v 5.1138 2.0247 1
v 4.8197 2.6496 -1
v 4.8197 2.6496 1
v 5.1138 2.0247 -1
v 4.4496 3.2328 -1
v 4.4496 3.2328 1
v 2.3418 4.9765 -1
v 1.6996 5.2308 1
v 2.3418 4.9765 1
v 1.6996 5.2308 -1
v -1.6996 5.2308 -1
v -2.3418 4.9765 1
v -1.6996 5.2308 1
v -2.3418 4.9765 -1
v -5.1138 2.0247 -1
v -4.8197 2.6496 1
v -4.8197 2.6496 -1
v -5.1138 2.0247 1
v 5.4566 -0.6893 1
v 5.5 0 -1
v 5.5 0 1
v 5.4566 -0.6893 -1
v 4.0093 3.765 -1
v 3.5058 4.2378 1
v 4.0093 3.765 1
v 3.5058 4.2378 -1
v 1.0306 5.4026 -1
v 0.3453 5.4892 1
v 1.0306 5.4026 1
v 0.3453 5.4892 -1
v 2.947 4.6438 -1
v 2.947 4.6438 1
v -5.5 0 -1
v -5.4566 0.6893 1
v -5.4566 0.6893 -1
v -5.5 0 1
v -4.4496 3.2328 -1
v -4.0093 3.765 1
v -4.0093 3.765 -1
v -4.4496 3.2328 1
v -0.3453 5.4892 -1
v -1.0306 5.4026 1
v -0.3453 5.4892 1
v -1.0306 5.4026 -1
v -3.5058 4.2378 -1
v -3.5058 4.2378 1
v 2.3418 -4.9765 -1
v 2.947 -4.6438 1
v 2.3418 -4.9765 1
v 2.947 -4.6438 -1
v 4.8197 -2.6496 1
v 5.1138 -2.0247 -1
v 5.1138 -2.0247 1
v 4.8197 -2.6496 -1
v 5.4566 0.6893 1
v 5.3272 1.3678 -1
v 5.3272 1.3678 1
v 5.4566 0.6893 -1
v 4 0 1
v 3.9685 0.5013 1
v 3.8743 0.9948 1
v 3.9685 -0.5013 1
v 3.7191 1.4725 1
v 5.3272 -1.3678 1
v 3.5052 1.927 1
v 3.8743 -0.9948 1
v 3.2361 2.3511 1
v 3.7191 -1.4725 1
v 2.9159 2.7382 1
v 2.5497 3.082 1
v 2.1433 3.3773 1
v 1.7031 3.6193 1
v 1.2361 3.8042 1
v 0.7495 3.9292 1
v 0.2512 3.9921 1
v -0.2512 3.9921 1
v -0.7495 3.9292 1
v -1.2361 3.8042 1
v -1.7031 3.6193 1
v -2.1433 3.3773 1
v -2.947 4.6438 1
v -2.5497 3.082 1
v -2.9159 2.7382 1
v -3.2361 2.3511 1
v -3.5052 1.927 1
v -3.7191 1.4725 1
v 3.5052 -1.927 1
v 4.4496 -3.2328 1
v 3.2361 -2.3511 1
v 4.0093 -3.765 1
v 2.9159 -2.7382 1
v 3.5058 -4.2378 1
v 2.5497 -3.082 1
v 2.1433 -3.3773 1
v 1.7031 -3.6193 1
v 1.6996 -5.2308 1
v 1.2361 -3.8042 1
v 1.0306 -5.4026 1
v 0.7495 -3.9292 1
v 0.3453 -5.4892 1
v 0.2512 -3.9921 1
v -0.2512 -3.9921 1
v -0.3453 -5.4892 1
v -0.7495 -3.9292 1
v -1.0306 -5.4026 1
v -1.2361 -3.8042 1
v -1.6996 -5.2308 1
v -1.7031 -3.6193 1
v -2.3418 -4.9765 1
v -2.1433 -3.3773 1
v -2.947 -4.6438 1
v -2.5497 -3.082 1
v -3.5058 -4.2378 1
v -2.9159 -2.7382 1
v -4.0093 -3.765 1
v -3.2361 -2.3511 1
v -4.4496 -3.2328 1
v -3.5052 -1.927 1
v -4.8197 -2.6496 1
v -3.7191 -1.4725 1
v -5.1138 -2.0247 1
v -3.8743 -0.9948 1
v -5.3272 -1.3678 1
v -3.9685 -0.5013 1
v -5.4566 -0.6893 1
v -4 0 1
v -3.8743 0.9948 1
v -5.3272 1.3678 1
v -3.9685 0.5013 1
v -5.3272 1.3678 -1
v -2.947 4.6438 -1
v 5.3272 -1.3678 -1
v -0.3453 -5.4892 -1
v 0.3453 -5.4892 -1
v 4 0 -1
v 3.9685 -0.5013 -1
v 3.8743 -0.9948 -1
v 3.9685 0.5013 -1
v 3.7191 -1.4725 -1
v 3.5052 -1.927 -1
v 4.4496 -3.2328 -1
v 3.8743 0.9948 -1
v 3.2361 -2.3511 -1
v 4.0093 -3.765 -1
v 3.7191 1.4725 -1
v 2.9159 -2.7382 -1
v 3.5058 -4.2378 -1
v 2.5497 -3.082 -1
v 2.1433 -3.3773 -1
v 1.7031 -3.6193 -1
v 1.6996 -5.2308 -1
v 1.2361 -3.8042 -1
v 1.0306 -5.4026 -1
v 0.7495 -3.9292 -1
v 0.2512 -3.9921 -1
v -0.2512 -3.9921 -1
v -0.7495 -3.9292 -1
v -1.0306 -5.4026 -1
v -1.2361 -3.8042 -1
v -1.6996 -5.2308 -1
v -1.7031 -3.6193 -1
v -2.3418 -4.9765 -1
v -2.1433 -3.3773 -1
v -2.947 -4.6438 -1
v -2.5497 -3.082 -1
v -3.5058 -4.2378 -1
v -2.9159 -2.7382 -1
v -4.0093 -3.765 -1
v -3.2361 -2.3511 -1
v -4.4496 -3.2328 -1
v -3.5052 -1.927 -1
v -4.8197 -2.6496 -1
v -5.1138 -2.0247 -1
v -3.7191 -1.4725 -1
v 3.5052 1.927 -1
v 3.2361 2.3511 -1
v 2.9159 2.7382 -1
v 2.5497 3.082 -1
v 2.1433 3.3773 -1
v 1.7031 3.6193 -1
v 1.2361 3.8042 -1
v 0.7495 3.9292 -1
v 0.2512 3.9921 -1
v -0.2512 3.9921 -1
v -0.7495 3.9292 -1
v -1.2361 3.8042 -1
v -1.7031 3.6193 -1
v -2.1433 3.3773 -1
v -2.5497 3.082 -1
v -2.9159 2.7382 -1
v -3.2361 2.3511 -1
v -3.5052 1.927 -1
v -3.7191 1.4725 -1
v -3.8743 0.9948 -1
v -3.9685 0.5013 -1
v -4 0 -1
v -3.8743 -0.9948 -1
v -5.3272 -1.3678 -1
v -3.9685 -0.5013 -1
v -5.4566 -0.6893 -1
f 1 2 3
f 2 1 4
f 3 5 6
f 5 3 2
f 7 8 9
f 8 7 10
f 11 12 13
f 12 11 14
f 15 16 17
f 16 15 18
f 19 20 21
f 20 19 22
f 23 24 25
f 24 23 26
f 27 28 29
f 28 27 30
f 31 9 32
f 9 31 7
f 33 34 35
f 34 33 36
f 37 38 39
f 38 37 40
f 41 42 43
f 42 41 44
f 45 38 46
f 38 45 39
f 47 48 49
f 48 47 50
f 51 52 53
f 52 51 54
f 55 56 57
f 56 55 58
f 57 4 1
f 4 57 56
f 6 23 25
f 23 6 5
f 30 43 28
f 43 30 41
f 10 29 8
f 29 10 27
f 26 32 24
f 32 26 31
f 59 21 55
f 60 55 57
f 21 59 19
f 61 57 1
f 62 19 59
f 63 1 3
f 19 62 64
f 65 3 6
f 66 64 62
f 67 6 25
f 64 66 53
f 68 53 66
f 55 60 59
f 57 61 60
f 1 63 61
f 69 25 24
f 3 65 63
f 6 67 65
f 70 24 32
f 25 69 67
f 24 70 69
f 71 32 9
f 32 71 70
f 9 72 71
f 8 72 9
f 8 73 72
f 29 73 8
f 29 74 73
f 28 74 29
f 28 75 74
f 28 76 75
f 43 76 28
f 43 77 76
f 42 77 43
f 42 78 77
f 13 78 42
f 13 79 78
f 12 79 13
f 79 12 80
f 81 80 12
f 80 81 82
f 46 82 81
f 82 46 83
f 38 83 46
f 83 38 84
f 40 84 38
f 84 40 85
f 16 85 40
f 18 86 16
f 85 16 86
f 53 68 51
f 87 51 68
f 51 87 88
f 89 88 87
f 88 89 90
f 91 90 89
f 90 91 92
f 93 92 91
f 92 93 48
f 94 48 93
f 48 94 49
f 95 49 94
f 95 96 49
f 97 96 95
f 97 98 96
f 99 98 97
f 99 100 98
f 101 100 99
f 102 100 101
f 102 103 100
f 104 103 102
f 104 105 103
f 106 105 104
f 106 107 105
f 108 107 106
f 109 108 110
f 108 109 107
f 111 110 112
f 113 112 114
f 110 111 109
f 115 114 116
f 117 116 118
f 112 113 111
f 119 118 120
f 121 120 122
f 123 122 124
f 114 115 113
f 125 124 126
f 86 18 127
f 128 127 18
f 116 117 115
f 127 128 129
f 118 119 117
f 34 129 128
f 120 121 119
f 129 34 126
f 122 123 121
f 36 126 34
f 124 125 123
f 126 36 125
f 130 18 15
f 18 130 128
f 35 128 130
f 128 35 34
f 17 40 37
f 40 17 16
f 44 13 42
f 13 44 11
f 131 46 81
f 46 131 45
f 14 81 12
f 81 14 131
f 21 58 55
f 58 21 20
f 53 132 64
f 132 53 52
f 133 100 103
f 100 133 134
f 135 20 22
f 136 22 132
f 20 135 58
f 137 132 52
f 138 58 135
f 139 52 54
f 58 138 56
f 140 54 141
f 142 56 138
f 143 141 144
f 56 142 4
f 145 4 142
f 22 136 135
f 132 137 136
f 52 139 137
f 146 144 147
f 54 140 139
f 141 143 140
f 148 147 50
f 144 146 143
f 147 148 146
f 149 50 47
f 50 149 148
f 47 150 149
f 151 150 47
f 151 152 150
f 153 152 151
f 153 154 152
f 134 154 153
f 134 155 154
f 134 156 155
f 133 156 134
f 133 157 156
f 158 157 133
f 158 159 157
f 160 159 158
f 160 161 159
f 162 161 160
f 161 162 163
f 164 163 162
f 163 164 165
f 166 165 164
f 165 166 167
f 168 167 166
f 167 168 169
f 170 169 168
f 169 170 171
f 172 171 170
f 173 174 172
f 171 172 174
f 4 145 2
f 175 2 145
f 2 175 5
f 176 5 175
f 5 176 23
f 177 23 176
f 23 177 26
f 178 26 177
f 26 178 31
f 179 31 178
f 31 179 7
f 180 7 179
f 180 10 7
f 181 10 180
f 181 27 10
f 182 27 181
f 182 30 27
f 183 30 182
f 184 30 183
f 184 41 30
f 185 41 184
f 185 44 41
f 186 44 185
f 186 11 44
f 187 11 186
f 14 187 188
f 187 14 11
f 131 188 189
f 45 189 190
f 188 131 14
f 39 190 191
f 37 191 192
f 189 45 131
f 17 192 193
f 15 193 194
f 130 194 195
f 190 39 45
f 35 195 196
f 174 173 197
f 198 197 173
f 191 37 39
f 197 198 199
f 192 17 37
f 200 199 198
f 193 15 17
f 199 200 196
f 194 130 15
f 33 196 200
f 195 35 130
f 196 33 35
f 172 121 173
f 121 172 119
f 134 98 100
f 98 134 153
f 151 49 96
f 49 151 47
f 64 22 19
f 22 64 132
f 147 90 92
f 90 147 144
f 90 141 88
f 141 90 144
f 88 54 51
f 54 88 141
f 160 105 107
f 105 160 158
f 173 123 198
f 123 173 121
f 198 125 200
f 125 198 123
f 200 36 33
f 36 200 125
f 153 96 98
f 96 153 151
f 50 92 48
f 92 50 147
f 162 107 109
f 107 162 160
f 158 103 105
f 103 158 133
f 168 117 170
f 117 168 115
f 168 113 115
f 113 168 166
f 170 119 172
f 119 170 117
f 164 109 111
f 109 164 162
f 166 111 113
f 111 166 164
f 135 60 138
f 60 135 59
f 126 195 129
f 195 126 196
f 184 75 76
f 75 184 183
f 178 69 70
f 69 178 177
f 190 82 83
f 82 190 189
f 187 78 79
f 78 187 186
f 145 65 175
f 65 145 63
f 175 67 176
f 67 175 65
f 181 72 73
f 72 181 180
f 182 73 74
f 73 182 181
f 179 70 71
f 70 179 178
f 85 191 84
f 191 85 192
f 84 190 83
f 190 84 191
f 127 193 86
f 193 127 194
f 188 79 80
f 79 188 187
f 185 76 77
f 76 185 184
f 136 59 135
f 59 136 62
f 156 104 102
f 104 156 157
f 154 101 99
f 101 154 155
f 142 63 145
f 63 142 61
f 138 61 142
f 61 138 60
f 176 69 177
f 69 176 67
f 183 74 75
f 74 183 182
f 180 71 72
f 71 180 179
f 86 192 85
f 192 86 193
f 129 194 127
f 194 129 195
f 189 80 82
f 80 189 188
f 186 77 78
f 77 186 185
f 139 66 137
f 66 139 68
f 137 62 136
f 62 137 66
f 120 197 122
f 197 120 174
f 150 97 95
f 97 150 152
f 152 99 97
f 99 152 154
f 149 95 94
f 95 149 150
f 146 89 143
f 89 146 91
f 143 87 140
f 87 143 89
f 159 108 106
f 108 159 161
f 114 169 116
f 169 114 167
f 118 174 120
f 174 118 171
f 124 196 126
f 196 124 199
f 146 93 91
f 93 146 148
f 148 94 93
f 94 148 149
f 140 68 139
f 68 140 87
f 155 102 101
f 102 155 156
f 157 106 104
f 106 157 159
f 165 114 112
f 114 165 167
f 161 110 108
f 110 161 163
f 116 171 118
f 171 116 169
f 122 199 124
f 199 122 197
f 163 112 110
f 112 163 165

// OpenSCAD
$fn = 50;


difference() {
	union() {
		translate(v = [0, 0, -1.0000000000]) {
			cylinder(h = 2, r = 5.5000000000);
		}
	}
	union() {
		translate(v = [0, 0, -100.0000000000]) {
			cylinder(h = 200, r = 4);
		}
	}
}
